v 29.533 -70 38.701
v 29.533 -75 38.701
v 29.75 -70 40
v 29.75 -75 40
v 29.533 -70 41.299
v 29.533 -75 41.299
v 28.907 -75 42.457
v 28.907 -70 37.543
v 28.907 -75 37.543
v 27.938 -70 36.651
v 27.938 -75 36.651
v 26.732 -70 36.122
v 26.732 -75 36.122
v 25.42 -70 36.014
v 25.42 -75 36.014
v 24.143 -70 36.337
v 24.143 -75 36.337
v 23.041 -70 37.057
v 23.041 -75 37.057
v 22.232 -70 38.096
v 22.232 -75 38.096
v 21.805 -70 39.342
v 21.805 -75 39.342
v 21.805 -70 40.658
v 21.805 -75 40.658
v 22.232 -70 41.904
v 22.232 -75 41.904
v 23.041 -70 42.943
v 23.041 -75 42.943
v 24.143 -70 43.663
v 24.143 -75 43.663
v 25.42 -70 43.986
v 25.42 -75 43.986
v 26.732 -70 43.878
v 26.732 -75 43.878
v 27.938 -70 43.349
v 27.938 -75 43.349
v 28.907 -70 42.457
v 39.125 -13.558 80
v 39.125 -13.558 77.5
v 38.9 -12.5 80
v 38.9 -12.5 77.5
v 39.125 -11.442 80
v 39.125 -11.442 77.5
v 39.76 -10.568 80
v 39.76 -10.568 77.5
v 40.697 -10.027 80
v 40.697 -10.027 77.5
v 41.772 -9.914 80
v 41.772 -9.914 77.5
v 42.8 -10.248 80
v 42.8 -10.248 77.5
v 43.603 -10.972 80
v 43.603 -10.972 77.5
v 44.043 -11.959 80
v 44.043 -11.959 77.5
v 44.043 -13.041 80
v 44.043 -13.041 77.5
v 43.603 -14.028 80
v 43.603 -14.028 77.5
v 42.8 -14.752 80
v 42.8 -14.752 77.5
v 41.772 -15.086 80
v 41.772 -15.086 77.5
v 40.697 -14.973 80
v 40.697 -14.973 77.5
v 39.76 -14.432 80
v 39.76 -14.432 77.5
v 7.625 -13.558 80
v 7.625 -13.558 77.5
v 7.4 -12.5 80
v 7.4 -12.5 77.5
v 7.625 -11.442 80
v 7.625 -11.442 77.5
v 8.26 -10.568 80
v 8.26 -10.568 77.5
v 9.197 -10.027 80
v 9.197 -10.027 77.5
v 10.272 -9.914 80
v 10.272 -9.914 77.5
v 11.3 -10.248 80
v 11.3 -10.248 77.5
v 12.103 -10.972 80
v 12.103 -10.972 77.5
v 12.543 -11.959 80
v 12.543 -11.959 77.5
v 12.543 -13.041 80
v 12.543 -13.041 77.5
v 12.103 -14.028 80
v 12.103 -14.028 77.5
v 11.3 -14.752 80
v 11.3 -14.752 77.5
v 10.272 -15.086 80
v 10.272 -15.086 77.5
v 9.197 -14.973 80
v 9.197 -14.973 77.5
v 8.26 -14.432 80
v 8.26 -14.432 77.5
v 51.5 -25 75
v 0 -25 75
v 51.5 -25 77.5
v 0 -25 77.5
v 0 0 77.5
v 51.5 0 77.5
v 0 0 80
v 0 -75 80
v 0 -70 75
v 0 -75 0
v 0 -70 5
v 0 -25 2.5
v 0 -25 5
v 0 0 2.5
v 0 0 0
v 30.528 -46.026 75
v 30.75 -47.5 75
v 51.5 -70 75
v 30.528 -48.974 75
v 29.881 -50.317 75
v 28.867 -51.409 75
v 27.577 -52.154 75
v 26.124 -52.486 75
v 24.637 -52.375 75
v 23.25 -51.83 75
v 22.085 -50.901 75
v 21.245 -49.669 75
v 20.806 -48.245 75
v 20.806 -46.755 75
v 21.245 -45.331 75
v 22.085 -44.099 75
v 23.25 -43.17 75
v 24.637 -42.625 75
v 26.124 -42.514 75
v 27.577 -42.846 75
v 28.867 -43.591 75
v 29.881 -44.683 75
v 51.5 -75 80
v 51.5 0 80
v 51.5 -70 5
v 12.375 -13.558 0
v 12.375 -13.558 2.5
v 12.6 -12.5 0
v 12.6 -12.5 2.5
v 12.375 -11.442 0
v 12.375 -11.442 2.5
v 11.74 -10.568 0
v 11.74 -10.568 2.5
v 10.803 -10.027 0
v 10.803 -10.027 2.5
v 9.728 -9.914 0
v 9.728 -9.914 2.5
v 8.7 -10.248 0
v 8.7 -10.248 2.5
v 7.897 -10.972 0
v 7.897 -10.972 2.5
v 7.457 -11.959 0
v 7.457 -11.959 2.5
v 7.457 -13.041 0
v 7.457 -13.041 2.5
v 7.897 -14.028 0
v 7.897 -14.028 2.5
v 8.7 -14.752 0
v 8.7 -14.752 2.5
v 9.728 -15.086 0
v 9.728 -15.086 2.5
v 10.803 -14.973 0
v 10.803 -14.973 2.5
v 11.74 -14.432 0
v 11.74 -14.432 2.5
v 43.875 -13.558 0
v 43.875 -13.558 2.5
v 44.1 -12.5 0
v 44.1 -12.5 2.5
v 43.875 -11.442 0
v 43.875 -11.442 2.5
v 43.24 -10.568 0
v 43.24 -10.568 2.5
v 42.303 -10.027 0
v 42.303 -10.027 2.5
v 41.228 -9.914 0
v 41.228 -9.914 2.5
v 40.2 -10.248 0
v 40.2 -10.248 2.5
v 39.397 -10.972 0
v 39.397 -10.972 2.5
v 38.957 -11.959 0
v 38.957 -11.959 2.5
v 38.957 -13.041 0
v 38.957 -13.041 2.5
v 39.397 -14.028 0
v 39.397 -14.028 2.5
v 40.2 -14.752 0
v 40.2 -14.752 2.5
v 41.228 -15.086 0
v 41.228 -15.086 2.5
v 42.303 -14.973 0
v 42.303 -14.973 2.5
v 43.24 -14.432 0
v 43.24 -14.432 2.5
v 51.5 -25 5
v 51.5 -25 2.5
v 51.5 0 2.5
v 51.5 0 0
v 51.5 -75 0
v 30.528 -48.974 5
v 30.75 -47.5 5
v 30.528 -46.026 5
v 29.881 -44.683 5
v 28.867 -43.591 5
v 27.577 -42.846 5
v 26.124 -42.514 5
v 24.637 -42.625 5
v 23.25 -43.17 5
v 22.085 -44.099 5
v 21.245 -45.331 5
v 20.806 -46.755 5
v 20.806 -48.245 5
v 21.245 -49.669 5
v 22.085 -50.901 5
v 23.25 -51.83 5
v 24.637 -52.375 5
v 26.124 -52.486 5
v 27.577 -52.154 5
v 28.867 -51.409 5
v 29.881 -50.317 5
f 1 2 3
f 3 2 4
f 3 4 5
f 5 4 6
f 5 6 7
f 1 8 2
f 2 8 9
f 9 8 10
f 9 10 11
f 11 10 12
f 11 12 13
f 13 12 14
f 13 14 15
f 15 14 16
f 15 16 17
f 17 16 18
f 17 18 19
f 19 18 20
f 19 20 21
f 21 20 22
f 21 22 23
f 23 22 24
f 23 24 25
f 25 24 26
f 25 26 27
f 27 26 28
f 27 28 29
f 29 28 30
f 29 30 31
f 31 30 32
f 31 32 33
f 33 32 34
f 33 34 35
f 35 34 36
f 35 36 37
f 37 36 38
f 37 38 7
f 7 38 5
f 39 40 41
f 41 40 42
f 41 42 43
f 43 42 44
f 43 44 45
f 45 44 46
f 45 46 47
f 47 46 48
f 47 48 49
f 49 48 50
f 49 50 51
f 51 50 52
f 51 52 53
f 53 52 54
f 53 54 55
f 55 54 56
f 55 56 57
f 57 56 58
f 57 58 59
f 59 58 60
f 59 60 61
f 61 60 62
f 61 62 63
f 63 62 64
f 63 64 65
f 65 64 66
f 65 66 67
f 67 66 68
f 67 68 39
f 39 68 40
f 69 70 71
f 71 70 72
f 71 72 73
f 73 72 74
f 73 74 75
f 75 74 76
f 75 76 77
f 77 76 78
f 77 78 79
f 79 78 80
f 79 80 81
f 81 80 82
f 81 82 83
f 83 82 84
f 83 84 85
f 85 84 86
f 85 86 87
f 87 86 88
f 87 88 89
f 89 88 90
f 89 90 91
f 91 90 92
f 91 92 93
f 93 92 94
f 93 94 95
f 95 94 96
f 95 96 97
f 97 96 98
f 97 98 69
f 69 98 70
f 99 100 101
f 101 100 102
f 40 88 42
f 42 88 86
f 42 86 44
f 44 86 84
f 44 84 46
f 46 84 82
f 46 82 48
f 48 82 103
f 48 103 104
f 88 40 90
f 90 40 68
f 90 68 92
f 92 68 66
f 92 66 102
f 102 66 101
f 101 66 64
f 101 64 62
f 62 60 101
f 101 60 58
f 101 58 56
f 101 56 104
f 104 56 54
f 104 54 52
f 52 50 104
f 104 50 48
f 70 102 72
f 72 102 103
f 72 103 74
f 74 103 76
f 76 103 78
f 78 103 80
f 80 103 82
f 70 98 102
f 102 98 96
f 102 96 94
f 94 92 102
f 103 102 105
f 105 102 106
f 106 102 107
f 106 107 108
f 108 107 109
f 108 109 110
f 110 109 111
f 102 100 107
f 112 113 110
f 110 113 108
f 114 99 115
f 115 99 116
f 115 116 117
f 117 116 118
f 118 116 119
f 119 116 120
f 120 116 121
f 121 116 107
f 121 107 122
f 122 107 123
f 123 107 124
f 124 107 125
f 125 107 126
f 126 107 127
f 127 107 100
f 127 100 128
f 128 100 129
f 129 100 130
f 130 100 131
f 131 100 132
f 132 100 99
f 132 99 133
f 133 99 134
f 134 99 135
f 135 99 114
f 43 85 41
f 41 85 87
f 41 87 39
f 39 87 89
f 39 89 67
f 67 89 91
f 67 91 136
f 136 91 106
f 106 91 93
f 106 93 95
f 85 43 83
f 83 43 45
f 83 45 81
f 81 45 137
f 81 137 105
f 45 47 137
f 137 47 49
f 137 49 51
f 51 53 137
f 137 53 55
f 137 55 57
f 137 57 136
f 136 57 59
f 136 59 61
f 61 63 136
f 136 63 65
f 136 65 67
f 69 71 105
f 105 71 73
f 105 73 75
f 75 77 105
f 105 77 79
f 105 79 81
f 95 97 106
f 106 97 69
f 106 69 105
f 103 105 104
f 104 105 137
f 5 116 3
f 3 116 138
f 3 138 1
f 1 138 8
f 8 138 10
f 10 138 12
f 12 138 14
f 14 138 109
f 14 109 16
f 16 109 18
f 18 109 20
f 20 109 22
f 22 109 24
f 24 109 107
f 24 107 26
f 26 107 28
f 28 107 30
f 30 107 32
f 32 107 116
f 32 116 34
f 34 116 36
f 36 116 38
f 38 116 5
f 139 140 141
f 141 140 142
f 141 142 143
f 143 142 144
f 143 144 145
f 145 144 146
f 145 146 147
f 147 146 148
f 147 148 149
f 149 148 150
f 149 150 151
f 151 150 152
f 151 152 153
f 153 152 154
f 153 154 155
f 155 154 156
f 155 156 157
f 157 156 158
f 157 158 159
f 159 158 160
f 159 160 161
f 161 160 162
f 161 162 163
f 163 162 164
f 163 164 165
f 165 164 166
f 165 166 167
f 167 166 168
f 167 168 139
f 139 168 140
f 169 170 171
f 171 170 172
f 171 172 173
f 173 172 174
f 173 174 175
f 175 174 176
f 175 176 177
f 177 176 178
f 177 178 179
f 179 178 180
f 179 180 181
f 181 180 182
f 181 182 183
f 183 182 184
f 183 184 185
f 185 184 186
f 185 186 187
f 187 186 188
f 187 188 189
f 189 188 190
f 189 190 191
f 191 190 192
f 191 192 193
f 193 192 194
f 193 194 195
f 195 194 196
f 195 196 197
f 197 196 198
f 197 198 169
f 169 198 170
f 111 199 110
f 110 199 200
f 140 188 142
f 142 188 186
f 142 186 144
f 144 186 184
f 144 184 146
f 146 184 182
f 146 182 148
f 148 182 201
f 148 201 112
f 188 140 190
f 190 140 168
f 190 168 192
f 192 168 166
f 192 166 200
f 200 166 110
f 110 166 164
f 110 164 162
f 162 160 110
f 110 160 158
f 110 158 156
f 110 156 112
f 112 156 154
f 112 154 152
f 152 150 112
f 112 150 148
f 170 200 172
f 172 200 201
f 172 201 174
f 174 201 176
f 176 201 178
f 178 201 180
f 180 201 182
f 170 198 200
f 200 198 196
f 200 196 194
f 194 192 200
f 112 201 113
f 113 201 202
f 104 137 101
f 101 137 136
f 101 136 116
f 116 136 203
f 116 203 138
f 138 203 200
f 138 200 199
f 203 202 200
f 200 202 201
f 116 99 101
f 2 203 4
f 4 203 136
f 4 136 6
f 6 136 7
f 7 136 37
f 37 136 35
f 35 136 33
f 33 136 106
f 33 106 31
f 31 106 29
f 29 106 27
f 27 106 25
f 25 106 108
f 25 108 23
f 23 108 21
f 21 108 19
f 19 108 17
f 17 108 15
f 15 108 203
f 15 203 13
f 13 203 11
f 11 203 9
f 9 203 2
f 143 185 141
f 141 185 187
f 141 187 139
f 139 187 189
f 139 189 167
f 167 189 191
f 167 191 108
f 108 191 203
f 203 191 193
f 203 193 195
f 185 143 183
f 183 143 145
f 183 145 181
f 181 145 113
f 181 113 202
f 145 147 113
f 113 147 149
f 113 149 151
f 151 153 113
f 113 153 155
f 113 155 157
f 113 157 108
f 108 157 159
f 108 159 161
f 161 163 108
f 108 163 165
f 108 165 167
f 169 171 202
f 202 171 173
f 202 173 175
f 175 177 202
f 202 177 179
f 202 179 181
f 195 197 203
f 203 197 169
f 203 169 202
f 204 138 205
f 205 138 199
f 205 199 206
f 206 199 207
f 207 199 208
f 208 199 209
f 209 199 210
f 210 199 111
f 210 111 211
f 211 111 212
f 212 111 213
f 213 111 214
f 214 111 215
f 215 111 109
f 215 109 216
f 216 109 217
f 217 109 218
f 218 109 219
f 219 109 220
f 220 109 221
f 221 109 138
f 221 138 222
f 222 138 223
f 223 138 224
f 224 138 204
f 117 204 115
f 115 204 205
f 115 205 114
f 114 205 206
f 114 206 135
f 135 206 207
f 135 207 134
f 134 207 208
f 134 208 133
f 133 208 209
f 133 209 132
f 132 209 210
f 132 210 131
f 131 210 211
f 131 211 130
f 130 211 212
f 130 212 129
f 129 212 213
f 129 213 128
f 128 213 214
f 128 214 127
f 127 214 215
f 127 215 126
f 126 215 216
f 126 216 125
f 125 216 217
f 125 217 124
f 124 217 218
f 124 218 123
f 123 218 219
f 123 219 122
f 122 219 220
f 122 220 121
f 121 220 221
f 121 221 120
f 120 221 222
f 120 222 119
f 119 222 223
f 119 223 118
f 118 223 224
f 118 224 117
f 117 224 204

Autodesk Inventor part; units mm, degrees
ref_plane "YZ Plane" through (0, 0, 0) normal (1, 0, 0) x (0, 1, 0)
ref_plane "XZ Plane" through (0, 0, 0) normal (0, 1, 0) x (-1, 0, 0)
ref_plane "XY Plane" through (0, 0, 0) normal (0, 0, 1) x (1, 0, 0)
sketch "Esquisse1" plane through (0, 0, 0) normal (0, 0, 1) x (1, 0, 0)
  line L0 (0, 0) -> (51.5, 0)
  line L1 (51.5, 0) -> (51.5, -75)
  line L2 (51.5, -75) -> (0, -75)
  line L3 (0, -75) -> (0, 0)
  dimension "d0" = 51.5
  dimension "d1" = 75
extrude "Extrusion1" add sketch "Esquisse1" along normal blind 5
sketch "Esquisse2" plane through (0, 0, 5) normal (0, 0, 1) x (1, 0, 0)
  line L0 (0, 0) -> (51.5, 0)
  line L1 (51.5, 0) -> (51.5, -25)
  line L2 (51.5, -25) -> (0, -25)
  line L3 (0, -25) -> (0, 0)
  dimension "d4" = 25
extrude "Extrusion2" cut sketch "Esquisse2" against normal blind 2.5
sketch "Esquisse3" plane through (0, 0, 2.5) normal (0, 0, 1) x (1, 0, 0)
  circle A0 centre (10, -12.5) radius 2.6
  circle A1 centre (41.5, -12.5) radius 2.6
  line L0 (0, 0) -> (51.5, 0) projected
  line L1 (0, -25) -> (0, 0) projected
  line L2 (51.5, 0) -> (51.5, -25) projected
  dimension "d7" = 5.2
  dimension "d8" = 5.2
  dimension "d9" = 12.5
  dimension "d10" = 10
  dimension "d11" = 12.5
  dimension "d12" = 10
extrude "Extrusion3" cut sketch "Esquisse3" against normal blind 2.5
sketch "Esquisse4" plane through (0, 0, 5) normal (0, 0, 1) x (1, 0, 0)
  line L0 (0, -75) -> (51.5, -75)
  line L1 (51.5, -75) -> (51.5, -70)
  line L2 (51.5, -70) -> (0, -70)
  line L3 (0, -70) -> (0, -75)
  dimension "d15" = 5
extrude "Extrusion4" add sketch "Esquisse4" along normal blind 70
sketch "Esquisse6" plane through (0, -75, 0) normal (0, -1, 0) x (1, 0, 0)
  line L0 (51.5, 5) -> (51.5, 75) projected
  line L1 (51.5, 75) -> (0, 75)
  line L2 (0, 75) -> (0, 80)
  line L3 (0, 80) -> (51.5, 80)
  line L4 (51.5, 80) -> (51.5, 75)
  point P0 (0, 0)
  dimension "d19" = 5
extrude "Extrusion5" add sketch "Esquisse6" against normal blind 75
sketch "Esquisse7" plane through (51.5, -70, 75) normal (0, 0, -1) x (-1, 0, 0)
  line L0 (0, 70) -> (51.5, 70) projected
  line L1 (0, 70) -> (51.5, 70)
  line L2 (51.5, 70) -> (51.5, 45)
  line L3 (51.5, 45) -> (0, 45)
  line L4 (0, 45) -> (0, 70)
  dimension "d22" = 25
extrude "Extrusion6" cut sketch "Esquisse7" against normal blind 2.5
sketch "Esquisse8" plane through (51.5, -70, 77.5) normal (0, 0, -1) x (-1, 0, 0)
  circle A0 centre (10, 57.5) radius 2.6
  circle A1 centre (41.5, 57.5) radius 2.6
  line L0 (0, 45) -> (0, 70) projected
  line L1 (51.5, 70) -> (51.5, 45) projected
  line L2 (0, 70) -> (51.5, 70) projected
  dimension "d25" = 5.2
  dimension "d26" = 5.2
  dimension "d27" = 10
  dimension "d28" = 10
  dimension "d29" = 12.5
  dimension "d30" = 12.5
extrude "Extrusion7" cut sketch "Esquisse8" against normal blind 2.5
sketch "Esquisse9" plane through (0, -75, 0) normal (0, -1, 0) x (1, 0, 0)
  line L0 (0, 80) -> (51.5, 80) construction
  line L1 (51.5, 0) -> (51.5, 2.5) construction
  line L2 (0, 80) -> (51.5, 0) construction
  line L3 (51.5, 80) -> (0, 0) construction
  circle A0 centre (25.75, 40) radius 4
  dimension "d33" = 8
extrude "Extrusion8" cut sketch "Esquisse9" against normal blind 5
sketch "Esquisse10" plane through (0, 0, 5) normal (0, 0, 1) x (1, 0, 0)
  line L0 (0, -70) -> (51.5, -70) construction
  line L1 (51.5, -25) -> (0, -25) construction
  line L2 (0, -70) -> (51.5, -25) construction
  line L3 (51.5, -70) -> (51.5, -25) construction
  line L4 (0, -25) -> (0, -70) construction
  line L5 (51.5, -70) -> (0, -25) construction
  circle A0 centre (25.75, -47.5) radius 5
  point P0 (0, 0)
  dimension "d36" = 10
extrude "Extrusion9" add sketch "Esquisse10" along normal blind 70
properties part number "Forearm2 v2" material "Plastique ABS"
